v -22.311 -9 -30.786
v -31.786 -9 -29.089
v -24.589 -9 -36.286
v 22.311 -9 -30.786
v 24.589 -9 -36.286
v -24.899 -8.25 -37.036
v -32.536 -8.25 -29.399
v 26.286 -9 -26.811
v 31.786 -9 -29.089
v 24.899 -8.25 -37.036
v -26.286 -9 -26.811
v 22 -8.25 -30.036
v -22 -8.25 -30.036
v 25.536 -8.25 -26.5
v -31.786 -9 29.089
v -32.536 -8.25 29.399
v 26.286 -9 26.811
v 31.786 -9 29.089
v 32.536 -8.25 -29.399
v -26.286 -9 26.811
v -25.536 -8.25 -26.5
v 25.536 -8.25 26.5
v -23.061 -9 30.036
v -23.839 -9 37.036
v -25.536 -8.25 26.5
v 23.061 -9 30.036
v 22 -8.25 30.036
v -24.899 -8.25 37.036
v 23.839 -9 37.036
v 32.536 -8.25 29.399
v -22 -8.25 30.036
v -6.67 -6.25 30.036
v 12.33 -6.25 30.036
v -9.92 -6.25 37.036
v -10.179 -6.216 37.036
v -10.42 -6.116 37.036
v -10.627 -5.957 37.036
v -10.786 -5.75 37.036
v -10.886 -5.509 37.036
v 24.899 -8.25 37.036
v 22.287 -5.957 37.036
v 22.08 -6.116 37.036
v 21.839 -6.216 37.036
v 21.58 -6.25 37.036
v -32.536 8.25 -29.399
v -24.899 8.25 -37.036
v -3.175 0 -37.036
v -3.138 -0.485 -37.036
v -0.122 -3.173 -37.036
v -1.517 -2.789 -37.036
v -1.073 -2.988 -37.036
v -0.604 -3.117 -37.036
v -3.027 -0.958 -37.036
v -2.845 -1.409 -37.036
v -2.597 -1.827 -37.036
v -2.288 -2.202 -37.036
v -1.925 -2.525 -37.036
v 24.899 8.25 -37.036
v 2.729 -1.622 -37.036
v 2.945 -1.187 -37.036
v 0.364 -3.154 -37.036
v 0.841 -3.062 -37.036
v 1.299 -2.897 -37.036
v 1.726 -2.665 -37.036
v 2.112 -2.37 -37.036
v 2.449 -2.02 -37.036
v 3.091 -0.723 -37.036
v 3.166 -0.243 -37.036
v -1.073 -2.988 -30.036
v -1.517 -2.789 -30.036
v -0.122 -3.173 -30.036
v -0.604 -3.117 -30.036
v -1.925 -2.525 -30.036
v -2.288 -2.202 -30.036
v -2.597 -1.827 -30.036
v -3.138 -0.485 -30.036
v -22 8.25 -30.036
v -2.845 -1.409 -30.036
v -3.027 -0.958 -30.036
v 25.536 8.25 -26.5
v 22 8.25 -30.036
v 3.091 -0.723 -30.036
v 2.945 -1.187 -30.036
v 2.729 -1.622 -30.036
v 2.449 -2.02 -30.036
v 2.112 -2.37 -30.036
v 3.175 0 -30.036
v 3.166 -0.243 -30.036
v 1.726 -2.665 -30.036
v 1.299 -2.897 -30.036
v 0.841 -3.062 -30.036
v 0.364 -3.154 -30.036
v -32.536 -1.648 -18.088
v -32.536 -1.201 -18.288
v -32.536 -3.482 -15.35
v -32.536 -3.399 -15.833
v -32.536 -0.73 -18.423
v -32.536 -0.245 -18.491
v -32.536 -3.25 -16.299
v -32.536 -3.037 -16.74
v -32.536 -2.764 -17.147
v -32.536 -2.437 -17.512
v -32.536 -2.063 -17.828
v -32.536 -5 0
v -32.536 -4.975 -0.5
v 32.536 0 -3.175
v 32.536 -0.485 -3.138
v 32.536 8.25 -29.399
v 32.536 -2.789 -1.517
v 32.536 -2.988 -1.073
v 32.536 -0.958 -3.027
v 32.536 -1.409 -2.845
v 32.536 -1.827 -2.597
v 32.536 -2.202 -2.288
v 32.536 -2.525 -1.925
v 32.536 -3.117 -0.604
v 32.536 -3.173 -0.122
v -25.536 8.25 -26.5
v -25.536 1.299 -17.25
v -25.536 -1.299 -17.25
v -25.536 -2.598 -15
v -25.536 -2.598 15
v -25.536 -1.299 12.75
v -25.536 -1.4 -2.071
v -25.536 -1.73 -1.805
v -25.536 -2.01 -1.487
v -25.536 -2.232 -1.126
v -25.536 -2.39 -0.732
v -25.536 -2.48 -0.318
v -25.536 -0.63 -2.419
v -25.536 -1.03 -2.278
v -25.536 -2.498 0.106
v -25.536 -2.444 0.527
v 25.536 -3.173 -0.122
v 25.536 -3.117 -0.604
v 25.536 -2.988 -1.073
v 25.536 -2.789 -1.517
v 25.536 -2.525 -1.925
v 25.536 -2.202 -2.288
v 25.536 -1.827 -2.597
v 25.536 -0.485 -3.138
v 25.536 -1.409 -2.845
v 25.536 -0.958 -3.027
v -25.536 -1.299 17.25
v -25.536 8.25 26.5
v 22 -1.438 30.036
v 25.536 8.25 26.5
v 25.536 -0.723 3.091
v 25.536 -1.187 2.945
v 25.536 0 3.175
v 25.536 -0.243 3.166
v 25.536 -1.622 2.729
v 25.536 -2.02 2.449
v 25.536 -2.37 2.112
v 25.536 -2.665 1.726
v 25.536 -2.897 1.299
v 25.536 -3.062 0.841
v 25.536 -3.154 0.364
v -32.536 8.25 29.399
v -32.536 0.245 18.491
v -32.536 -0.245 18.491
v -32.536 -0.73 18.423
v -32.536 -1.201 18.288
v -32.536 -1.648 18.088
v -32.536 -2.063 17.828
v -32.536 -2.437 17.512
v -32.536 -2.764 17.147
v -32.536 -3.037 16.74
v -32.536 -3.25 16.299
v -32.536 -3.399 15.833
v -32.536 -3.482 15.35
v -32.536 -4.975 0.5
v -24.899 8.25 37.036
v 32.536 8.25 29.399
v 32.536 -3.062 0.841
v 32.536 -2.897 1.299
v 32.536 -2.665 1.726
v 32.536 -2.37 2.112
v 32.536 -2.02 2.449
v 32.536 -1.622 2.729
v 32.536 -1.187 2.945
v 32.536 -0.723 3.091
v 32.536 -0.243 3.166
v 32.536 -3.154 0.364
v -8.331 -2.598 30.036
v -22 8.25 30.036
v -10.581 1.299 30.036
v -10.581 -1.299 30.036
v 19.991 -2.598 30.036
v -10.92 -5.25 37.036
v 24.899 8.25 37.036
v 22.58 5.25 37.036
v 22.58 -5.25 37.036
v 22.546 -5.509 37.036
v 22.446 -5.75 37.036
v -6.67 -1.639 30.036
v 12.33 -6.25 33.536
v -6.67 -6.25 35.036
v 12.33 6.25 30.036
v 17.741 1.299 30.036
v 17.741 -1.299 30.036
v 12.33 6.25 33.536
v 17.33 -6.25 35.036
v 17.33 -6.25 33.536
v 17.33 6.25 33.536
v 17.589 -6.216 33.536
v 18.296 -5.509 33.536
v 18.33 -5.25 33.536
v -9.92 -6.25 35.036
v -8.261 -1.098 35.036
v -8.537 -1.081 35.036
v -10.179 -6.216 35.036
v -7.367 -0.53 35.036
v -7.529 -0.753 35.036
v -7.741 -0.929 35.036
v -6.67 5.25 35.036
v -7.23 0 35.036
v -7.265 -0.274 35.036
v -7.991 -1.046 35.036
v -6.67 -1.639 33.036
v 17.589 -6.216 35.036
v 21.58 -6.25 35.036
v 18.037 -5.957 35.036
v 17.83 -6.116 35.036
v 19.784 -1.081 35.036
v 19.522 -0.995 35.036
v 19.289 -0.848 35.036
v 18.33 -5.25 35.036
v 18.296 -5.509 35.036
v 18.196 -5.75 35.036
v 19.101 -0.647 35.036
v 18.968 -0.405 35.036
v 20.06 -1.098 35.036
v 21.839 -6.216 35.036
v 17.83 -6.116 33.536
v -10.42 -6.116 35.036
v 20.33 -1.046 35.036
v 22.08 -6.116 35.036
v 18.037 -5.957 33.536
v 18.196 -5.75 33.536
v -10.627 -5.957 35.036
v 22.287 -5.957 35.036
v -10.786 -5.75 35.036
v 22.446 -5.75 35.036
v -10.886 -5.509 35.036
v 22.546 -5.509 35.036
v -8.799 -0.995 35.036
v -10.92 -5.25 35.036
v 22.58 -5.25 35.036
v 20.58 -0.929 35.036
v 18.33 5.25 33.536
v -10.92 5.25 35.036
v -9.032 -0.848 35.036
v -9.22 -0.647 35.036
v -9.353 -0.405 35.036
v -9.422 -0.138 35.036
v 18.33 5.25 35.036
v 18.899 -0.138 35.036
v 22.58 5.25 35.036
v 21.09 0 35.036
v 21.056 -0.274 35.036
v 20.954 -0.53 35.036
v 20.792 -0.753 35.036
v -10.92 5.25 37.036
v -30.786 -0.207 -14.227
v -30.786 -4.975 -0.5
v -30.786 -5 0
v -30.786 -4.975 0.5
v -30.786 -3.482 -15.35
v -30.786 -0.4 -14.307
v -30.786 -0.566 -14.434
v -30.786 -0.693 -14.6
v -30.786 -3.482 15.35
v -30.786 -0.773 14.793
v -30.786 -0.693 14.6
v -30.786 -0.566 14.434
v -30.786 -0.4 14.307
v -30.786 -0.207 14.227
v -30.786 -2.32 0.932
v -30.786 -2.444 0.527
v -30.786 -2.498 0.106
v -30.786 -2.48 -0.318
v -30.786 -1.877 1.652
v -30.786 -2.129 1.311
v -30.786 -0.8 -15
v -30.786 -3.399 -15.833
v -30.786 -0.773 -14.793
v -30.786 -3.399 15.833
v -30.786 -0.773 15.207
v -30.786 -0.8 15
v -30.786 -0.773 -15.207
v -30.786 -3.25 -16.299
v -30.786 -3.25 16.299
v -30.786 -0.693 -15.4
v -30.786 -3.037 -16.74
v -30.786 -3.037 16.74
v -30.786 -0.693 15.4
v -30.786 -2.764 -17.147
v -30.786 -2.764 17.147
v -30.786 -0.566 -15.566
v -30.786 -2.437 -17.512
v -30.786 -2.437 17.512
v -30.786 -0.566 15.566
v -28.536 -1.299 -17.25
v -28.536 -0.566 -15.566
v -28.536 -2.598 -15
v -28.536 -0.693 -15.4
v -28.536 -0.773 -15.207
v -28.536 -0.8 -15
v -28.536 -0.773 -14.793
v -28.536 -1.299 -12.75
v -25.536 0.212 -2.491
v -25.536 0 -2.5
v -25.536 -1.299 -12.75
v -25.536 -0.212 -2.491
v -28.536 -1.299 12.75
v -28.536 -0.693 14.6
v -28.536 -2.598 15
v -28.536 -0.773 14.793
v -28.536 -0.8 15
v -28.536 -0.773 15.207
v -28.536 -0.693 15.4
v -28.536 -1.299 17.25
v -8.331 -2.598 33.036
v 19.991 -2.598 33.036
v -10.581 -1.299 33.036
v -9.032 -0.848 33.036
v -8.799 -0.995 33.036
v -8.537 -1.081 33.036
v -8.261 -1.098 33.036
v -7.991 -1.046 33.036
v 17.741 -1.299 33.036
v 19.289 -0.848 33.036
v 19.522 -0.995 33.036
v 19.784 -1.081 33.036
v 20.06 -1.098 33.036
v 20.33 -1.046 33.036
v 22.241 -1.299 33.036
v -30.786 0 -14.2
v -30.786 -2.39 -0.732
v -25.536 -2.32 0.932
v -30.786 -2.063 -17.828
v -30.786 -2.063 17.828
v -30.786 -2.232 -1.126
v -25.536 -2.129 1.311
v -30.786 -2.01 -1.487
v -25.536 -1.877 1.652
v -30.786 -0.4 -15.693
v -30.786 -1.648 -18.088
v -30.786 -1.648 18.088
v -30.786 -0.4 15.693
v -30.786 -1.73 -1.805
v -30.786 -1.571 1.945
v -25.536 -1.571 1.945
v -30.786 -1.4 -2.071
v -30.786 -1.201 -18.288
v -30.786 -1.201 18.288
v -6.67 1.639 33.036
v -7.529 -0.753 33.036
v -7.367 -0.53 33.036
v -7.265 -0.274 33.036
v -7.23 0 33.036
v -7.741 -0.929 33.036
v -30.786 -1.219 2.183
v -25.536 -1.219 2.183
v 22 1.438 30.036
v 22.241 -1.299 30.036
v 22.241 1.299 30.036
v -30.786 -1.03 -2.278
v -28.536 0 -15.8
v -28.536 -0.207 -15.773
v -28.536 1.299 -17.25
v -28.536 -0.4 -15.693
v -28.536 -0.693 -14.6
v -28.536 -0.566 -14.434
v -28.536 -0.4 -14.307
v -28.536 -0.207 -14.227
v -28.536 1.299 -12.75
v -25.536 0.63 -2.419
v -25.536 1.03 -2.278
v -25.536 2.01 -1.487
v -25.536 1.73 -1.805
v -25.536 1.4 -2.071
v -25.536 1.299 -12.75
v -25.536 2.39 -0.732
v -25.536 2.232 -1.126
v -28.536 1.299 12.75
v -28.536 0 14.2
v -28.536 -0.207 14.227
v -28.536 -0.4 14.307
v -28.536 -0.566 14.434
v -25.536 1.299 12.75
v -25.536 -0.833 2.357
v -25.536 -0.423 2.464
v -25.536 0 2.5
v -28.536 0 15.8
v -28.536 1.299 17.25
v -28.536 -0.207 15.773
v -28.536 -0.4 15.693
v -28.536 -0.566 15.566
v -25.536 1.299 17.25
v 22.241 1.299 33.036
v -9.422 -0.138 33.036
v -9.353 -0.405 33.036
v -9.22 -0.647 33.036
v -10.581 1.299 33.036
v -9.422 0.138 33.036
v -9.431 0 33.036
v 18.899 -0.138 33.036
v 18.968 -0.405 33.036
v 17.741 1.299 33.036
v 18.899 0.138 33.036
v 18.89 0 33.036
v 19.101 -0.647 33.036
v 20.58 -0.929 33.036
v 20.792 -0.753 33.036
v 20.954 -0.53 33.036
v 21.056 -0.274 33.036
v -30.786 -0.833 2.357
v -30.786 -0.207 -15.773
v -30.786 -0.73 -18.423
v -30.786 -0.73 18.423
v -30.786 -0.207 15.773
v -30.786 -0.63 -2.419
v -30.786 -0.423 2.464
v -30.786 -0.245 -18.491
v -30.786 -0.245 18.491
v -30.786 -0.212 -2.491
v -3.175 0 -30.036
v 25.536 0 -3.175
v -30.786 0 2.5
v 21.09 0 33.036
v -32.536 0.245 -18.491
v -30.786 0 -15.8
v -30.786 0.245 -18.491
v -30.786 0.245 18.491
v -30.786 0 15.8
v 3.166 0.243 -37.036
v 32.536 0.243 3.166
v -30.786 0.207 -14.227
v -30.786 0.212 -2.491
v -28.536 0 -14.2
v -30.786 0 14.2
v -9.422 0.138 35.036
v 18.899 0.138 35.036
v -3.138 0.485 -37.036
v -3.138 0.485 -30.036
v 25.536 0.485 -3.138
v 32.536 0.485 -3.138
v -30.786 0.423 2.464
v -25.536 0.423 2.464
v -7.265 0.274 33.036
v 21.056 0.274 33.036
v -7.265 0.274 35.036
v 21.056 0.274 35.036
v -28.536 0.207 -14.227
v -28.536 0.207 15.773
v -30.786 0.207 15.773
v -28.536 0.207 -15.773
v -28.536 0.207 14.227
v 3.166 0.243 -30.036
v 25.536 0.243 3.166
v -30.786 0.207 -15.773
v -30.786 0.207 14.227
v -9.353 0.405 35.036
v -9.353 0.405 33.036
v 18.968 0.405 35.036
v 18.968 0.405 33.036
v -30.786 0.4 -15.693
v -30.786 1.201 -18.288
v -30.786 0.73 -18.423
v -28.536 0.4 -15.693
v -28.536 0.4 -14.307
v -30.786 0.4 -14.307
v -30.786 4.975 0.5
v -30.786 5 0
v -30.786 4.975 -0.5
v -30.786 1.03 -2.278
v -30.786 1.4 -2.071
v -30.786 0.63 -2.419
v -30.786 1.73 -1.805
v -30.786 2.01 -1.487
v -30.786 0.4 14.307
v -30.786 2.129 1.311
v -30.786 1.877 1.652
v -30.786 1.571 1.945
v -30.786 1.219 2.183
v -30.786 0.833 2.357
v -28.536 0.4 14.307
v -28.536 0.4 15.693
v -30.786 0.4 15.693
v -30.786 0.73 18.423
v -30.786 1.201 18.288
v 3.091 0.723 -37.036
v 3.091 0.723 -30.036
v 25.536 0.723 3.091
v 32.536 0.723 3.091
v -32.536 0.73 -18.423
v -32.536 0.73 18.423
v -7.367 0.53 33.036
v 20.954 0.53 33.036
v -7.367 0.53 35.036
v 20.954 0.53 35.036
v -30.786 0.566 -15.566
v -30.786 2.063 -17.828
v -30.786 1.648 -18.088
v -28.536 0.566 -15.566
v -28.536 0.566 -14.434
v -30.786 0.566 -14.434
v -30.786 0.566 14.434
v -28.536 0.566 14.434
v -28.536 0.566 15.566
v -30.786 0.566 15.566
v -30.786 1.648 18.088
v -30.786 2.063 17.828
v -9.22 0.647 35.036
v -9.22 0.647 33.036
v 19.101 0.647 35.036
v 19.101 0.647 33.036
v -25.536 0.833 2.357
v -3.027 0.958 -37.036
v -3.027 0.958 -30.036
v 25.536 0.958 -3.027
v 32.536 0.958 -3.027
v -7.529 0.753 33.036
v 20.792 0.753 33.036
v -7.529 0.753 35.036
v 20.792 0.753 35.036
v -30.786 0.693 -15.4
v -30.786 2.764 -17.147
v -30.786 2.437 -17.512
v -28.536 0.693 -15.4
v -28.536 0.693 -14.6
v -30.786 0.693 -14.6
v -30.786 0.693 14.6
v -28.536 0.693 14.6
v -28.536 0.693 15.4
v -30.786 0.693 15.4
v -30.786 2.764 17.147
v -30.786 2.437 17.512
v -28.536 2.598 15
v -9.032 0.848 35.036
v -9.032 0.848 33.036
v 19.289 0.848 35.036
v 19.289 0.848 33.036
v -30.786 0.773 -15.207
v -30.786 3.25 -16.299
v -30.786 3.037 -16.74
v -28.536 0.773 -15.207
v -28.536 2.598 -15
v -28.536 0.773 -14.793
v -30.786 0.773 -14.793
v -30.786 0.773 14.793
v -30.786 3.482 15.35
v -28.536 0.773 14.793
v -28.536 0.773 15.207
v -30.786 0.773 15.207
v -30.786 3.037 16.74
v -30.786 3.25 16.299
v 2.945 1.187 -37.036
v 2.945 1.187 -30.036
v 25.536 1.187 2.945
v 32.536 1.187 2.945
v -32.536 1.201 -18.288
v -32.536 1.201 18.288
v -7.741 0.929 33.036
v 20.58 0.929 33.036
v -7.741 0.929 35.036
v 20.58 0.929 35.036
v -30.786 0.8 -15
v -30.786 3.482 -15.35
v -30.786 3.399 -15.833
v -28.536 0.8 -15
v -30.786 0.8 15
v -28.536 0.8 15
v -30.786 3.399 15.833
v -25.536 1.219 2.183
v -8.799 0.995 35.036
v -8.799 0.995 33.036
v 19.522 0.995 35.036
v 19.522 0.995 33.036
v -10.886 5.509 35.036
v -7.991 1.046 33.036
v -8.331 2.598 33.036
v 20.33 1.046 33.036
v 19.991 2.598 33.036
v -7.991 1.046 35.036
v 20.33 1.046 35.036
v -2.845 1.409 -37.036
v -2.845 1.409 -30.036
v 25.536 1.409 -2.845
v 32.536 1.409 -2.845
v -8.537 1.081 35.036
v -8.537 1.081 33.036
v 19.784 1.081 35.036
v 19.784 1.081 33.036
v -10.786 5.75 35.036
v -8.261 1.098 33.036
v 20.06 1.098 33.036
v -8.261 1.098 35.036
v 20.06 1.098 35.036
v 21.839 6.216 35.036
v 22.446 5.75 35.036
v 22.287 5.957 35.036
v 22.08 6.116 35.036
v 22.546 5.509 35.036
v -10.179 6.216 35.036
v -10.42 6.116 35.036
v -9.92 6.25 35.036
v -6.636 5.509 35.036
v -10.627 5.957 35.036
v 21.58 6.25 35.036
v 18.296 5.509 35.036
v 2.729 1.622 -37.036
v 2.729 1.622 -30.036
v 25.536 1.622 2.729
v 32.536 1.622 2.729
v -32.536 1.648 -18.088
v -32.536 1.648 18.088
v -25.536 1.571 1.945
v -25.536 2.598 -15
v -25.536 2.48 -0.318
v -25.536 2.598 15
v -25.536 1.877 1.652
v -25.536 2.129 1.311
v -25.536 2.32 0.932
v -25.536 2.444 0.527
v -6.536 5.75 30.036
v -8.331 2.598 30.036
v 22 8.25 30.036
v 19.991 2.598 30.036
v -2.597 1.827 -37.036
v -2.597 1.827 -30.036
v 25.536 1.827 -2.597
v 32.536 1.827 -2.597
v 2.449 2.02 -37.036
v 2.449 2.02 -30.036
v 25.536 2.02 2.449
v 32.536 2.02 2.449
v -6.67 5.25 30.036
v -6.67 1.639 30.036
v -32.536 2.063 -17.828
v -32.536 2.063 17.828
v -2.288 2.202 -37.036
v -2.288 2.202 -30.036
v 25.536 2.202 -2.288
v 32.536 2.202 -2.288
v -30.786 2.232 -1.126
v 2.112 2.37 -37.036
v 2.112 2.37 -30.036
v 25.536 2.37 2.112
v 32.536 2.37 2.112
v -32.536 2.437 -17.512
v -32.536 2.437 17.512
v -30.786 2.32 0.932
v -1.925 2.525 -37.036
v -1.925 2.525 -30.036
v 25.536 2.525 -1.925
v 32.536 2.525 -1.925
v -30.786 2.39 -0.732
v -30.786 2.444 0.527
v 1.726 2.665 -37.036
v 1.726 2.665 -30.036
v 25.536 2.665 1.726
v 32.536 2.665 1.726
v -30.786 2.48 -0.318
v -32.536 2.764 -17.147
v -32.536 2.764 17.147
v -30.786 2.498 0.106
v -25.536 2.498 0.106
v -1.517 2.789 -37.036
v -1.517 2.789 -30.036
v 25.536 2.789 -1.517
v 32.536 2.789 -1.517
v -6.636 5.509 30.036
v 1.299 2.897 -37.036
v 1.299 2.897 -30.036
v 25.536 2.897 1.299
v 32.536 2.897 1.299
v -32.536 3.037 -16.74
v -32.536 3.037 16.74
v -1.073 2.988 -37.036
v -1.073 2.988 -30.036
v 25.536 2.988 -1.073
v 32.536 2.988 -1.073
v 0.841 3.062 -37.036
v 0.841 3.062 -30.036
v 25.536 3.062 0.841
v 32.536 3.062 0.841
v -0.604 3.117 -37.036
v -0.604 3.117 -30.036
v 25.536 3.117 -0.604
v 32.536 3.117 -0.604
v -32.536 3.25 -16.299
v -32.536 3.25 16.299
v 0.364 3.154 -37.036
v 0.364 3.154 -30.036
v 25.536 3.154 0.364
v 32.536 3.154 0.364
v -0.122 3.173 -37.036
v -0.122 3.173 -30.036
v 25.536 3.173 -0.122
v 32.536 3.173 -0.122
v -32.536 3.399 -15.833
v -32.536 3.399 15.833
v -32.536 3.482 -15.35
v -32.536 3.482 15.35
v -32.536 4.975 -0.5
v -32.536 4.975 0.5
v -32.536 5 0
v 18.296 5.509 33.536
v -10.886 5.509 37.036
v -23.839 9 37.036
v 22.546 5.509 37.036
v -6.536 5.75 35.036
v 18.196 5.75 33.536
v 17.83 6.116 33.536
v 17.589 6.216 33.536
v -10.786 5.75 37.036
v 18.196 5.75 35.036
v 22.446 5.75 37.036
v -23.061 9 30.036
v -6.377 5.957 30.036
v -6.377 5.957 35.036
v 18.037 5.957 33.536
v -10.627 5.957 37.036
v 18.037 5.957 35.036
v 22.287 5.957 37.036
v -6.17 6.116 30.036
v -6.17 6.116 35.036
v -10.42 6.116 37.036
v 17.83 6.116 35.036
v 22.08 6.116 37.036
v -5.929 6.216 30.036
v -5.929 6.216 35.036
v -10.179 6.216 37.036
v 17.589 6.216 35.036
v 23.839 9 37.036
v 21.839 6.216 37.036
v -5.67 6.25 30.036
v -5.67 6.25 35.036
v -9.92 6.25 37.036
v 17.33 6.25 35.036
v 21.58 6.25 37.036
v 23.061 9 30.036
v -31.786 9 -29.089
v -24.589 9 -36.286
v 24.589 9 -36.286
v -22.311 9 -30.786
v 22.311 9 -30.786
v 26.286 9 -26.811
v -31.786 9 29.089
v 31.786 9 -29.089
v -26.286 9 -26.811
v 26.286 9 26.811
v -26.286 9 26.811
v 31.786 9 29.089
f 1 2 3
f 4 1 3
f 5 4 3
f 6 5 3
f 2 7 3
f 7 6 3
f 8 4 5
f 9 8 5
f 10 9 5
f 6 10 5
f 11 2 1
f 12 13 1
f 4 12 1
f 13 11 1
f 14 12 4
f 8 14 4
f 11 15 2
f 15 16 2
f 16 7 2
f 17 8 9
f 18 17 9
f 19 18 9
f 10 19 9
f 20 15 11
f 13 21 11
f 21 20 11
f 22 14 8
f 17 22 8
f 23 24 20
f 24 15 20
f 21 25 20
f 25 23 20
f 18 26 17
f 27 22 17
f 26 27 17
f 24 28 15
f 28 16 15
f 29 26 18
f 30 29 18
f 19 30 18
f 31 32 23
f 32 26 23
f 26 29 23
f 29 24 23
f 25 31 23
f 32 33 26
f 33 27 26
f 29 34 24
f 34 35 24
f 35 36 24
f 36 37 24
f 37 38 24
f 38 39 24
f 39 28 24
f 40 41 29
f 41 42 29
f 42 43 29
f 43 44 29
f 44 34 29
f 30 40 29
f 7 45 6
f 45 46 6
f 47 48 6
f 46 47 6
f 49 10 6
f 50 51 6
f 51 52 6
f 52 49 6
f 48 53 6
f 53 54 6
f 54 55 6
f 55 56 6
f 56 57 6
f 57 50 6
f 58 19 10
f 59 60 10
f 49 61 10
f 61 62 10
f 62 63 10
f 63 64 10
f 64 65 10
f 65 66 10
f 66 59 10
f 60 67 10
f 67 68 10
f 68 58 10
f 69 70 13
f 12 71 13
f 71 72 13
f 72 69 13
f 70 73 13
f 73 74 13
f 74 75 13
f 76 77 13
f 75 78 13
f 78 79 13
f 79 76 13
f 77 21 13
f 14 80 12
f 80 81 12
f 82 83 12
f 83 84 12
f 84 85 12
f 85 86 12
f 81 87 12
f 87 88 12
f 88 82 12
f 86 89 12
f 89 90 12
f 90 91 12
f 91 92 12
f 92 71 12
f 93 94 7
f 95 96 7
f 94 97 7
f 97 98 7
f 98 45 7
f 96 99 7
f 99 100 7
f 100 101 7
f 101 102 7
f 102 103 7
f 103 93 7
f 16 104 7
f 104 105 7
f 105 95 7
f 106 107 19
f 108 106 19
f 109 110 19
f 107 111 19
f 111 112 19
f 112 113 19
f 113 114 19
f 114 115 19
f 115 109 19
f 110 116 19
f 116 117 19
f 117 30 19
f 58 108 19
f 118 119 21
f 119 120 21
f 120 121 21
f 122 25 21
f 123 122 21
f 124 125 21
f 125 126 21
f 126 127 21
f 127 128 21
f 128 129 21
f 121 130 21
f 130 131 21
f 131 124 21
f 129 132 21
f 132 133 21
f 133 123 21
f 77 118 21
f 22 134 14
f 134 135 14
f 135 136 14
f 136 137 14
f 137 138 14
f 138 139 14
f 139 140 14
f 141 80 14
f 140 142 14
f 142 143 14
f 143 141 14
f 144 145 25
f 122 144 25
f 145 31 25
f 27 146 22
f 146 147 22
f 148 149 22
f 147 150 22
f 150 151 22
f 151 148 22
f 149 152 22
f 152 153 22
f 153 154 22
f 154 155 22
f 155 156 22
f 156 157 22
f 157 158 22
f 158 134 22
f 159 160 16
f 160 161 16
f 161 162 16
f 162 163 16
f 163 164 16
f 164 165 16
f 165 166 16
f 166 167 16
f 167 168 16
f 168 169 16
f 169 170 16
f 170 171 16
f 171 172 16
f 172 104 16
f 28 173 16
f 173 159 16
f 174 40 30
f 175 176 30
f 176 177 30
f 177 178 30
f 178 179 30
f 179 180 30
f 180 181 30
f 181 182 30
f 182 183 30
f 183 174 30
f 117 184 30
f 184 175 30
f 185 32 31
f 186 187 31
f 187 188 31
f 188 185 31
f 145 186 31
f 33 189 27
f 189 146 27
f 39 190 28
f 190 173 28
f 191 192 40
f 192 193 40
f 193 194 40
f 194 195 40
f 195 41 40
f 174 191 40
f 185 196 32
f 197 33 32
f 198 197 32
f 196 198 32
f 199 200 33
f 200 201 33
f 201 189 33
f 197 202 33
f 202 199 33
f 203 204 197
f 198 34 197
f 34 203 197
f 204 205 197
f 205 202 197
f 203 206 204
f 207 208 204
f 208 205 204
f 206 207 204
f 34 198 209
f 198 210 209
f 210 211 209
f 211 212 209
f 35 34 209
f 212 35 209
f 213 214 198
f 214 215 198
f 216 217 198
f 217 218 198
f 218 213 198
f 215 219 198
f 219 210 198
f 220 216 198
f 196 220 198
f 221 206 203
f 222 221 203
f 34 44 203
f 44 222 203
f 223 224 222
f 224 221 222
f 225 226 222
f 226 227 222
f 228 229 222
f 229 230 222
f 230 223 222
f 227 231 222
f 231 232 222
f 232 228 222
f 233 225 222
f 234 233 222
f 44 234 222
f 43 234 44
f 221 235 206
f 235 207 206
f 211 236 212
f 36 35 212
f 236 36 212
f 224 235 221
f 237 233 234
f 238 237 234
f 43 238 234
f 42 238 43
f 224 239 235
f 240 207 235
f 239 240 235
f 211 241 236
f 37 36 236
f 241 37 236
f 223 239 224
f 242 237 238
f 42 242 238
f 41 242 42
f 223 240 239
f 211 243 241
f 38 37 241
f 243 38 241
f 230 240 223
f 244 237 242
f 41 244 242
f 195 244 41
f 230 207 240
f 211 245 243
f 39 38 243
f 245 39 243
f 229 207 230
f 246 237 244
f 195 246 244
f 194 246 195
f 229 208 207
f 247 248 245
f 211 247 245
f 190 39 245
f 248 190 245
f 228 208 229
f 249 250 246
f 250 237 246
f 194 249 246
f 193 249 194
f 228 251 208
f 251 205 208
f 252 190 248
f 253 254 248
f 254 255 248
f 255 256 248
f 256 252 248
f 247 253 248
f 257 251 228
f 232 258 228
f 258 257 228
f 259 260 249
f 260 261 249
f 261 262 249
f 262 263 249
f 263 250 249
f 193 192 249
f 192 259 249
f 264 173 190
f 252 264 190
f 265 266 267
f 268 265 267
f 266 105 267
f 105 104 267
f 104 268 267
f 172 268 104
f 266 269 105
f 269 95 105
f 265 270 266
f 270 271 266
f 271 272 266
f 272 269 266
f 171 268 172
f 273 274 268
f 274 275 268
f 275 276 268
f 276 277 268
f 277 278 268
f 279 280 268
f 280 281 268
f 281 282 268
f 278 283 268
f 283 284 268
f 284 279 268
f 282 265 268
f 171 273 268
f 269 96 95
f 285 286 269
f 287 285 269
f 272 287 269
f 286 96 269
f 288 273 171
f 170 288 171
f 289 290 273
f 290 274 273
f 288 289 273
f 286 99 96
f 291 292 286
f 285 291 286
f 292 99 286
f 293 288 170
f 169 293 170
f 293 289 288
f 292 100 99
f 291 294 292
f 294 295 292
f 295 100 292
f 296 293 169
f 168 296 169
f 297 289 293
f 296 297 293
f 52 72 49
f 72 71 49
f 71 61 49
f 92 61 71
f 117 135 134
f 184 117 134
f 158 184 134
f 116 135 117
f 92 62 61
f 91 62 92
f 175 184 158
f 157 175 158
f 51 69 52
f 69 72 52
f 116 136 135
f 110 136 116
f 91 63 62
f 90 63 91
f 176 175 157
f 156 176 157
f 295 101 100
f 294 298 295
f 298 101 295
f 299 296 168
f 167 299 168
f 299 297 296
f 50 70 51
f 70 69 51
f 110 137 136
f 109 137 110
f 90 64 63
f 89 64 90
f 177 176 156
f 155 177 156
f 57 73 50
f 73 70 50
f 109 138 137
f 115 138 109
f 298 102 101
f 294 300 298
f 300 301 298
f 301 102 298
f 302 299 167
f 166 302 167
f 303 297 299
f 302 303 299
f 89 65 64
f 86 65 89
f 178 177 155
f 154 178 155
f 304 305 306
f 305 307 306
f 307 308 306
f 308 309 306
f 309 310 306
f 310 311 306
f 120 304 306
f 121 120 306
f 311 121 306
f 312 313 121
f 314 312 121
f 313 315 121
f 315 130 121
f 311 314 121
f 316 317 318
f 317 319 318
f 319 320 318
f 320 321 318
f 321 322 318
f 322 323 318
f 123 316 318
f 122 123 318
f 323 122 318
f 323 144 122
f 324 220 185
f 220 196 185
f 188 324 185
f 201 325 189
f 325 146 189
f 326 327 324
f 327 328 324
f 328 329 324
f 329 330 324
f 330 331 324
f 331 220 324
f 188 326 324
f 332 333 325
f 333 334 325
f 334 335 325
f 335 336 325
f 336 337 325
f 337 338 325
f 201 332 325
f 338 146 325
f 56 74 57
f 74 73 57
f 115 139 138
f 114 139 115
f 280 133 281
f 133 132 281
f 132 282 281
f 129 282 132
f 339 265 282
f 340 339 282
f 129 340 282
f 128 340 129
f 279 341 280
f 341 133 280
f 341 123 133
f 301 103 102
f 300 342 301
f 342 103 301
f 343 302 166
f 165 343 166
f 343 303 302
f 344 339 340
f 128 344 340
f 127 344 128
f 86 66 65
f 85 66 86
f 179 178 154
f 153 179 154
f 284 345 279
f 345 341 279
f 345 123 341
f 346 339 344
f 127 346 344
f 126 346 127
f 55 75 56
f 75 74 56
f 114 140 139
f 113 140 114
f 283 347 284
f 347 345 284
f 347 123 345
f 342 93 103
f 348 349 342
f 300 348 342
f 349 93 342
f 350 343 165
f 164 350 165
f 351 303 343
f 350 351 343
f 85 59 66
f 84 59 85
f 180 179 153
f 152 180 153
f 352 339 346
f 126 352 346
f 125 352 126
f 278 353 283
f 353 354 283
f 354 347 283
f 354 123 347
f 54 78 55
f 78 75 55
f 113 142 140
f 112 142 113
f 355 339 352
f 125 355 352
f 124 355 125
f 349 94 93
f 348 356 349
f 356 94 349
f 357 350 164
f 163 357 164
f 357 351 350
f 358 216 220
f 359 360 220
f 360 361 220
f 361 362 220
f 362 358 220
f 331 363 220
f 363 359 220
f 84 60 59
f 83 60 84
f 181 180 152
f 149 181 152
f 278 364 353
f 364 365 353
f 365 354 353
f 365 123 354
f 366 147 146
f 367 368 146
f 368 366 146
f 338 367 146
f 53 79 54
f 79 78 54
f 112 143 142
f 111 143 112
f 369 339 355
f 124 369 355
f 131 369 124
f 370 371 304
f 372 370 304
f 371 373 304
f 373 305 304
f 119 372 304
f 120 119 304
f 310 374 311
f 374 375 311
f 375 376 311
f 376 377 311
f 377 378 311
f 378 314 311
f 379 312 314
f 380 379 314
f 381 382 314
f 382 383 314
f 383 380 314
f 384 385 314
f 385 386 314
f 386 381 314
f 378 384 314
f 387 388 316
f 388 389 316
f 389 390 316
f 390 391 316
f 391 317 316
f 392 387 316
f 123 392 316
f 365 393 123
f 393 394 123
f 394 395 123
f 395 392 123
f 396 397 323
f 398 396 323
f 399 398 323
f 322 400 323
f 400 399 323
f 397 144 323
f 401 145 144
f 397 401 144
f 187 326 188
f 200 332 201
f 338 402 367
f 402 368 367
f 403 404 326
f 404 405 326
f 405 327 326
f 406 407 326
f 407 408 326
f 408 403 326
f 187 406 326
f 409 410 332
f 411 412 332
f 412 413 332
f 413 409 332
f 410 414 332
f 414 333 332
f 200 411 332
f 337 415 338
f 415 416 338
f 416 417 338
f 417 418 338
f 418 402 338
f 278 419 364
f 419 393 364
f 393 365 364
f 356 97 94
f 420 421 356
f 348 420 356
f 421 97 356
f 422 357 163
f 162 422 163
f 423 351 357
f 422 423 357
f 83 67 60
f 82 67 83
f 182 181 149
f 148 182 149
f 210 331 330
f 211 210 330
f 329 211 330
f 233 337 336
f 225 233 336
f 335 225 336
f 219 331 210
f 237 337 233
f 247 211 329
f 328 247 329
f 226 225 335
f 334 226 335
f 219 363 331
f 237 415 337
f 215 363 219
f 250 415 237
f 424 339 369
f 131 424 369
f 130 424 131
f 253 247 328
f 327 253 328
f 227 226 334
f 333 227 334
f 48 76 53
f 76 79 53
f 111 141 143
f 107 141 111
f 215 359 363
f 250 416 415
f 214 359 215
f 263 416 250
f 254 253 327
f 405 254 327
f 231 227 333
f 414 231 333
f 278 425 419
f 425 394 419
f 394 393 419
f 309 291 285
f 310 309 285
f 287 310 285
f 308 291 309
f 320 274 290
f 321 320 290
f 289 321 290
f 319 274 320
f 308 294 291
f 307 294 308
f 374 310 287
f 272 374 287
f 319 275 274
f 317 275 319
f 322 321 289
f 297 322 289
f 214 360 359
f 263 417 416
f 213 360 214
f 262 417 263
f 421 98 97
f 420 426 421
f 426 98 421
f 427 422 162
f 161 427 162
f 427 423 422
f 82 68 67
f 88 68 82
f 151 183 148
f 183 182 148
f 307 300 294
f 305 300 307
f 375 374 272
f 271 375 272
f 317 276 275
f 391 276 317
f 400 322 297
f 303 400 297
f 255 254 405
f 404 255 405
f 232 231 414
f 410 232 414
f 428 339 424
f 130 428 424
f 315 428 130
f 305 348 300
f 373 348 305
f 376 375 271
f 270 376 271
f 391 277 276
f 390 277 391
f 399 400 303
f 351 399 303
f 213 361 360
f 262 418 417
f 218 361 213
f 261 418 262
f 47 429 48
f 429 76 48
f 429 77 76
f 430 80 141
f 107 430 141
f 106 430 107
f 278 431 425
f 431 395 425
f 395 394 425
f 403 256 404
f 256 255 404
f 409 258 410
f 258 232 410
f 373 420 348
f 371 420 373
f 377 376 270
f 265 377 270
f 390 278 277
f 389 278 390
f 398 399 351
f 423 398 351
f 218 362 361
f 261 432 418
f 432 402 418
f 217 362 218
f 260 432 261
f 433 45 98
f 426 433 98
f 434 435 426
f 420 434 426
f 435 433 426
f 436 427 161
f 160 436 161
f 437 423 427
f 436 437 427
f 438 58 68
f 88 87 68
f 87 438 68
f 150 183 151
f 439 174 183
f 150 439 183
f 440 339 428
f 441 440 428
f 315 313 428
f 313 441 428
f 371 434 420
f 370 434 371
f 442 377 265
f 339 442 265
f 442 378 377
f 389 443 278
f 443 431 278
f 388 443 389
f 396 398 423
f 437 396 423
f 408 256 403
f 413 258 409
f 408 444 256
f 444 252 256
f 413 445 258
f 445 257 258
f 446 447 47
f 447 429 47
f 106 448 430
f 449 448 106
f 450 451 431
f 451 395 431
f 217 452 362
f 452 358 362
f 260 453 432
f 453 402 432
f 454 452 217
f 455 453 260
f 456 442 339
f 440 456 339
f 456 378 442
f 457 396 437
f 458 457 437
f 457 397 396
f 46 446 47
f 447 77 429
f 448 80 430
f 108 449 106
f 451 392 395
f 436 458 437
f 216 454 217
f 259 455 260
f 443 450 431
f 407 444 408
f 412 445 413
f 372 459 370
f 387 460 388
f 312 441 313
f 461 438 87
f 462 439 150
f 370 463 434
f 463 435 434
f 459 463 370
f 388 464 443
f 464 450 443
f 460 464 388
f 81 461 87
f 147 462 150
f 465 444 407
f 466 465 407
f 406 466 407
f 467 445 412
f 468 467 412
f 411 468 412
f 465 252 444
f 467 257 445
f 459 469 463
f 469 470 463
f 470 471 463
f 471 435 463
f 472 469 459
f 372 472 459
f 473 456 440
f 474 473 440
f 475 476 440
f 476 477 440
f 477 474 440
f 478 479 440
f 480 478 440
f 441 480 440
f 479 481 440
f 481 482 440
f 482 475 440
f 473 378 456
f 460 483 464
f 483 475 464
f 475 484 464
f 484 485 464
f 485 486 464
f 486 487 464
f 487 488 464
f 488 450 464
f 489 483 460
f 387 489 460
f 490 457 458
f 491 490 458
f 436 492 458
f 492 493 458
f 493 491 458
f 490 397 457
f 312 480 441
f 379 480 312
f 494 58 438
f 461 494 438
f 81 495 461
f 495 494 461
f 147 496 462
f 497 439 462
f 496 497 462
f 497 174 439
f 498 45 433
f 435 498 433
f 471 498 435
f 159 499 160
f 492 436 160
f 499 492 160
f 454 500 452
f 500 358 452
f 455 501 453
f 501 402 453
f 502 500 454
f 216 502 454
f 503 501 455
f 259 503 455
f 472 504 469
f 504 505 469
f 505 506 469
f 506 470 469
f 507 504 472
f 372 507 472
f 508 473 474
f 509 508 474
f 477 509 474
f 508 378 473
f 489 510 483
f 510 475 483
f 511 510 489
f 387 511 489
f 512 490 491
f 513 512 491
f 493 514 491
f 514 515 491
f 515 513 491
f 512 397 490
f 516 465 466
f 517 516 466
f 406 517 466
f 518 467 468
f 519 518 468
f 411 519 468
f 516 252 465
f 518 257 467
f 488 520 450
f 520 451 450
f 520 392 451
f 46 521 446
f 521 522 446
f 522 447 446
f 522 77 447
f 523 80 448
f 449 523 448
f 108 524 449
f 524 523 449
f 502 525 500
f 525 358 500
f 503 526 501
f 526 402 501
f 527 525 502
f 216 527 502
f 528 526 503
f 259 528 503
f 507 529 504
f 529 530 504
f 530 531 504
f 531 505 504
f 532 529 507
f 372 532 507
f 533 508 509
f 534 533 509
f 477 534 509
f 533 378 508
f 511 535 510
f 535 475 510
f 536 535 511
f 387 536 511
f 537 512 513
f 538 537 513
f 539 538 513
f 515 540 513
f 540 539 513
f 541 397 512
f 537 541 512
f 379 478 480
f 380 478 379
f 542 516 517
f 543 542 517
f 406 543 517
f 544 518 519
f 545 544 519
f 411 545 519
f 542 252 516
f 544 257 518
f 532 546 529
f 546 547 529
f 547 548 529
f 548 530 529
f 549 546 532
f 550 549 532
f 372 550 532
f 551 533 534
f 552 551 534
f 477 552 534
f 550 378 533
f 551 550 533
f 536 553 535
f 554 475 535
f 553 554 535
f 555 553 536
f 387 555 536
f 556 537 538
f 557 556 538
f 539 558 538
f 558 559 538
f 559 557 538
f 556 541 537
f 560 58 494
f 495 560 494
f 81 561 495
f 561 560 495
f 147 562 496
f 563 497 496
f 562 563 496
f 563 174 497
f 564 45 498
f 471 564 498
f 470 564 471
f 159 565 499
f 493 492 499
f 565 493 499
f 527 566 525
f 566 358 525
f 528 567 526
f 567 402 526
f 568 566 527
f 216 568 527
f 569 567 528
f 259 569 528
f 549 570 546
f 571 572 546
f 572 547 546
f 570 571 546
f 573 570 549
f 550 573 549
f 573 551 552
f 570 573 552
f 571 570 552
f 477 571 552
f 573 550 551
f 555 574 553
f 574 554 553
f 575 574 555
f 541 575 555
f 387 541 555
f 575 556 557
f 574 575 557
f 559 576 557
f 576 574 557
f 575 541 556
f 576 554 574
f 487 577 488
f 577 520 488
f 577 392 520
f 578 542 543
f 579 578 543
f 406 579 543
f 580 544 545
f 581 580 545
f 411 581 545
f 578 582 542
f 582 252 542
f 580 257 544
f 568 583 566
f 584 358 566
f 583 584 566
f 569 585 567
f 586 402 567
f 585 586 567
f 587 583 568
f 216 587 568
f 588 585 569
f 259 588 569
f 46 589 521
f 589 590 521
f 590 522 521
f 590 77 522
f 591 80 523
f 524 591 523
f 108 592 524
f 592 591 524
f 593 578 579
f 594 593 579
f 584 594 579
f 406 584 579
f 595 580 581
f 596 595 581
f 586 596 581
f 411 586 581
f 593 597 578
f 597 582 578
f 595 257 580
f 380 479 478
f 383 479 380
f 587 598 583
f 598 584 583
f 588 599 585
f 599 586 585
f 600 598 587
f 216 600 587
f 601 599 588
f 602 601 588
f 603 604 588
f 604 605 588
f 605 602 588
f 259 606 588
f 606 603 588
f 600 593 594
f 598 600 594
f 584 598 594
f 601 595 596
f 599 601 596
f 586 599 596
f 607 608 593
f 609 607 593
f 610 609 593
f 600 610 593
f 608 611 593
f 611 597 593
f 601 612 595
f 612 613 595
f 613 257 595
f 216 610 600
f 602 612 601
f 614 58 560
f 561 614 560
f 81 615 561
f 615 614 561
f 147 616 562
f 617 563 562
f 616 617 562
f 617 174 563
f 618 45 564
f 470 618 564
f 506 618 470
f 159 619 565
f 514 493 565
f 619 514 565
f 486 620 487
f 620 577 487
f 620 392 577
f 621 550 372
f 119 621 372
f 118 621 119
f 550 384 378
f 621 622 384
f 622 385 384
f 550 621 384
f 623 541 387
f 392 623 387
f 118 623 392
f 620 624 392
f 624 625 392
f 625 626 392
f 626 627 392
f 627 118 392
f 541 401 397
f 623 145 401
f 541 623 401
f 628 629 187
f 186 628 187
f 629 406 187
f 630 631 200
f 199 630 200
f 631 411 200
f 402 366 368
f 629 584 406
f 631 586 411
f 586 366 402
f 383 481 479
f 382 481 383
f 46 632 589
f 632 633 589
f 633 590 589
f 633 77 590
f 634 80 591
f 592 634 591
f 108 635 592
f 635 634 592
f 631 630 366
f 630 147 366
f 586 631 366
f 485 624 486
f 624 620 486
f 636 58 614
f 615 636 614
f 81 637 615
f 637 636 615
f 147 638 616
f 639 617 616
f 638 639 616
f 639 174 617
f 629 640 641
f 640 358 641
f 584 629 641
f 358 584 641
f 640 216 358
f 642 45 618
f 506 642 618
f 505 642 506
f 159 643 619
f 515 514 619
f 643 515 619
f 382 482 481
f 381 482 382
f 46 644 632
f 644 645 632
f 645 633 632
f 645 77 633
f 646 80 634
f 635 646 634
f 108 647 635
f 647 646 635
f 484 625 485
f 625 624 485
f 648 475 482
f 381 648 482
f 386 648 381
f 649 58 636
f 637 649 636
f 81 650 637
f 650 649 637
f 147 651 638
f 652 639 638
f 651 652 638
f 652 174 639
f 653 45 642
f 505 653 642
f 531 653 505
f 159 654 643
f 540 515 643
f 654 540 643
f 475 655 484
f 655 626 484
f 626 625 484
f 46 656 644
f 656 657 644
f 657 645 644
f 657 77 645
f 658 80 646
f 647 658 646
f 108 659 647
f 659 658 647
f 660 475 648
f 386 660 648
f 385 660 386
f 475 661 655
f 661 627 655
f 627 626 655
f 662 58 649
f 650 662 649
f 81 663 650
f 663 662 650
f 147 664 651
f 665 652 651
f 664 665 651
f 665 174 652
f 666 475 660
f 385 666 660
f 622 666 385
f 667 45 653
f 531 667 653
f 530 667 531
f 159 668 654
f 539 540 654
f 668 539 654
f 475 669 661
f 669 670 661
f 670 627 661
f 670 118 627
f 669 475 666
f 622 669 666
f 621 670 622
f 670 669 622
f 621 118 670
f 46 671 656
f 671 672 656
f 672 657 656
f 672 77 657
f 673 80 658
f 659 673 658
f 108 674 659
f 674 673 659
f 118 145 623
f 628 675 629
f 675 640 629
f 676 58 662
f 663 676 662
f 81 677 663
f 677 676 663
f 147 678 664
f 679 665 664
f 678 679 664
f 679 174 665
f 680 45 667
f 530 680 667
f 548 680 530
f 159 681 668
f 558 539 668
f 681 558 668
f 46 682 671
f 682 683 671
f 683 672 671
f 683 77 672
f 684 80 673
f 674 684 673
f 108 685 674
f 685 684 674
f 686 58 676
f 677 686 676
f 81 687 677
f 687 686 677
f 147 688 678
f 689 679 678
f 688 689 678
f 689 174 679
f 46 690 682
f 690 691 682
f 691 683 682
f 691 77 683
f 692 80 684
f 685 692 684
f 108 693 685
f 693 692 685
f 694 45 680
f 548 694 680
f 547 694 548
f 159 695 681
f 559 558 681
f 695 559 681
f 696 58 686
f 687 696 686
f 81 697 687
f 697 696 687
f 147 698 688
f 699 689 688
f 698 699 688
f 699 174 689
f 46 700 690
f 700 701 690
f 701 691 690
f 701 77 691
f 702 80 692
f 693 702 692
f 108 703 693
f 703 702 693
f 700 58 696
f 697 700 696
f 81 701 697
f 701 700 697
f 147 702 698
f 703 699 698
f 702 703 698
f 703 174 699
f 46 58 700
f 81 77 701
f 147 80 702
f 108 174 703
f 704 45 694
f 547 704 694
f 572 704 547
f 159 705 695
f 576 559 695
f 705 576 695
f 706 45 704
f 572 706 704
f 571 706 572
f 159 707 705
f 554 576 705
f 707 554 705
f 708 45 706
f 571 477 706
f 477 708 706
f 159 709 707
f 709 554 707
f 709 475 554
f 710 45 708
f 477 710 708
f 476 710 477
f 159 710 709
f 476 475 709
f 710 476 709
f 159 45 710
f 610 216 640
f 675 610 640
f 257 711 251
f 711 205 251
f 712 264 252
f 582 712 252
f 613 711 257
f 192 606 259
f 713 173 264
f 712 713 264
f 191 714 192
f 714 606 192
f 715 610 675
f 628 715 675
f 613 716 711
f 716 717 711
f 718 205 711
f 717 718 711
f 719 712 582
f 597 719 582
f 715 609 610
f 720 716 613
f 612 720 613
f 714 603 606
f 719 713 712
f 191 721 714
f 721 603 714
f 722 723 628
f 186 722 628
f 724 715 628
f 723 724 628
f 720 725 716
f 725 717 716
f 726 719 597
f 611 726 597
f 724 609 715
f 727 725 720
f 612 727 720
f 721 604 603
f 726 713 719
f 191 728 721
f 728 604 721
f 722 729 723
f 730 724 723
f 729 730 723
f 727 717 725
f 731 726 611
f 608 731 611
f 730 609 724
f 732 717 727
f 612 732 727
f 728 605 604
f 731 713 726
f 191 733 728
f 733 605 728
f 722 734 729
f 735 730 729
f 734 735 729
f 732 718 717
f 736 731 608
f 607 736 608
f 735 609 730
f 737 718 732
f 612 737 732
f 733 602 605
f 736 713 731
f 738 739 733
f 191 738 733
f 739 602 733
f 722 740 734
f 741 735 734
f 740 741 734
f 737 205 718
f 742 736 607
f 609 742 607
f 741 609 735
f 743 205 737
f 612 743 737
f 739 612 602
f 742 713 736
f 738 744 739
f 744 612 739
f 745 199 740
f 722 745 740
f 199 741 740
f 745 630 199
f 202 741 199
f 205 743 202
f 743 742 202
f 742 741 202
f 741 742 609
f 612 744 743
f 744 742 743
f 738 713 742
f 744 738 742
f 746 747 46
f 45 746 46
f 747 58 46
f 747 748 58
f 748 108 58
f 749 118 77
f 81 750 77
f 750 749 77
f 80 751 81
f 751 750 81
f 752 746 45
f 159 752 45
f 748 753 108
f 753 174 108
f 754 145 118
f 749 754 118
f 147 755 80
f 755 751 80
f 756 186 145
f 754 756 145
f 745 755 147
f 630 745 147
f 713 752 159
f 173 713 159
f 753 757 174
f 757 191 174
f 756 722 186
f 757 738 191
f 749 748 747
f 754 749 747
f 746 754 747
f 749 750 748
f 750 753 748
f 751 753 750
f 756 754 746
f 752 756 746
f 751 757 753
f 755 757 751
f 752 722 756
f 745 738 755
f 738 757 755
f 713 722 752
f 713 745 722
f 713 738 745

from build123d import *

# Parameters (mm, degrees)
BOSS_EXTRUDE1_DEPTH = 9
BEARING_HOLE_REACH  = 67.071
SKETCH11_R          = 3.175
CUT_EXTRUDE23_REACH = 67.071
SKETCH27_R          = 0.8
CUT_EXTRUDE25_DEPTH = 1.75
CUT_EXTRUDE26_REACH = 65.321
SKETCH28_R          = 2.5
CUT_EXTRUDE27_REACH = 76.071
SKETCH29_R          = 3.175
SKETCH35_W          = 33.5
SKETCH35_H          = 12.5
CUT_EXTRUDE29_DEPTH = 2
CUT_EXTRUDE30_REACH = 74.071
SKETCH36_W          = 25
SKETCH36_H          = 12.5
CUT_EXTRUDE31_REACH = 74.071
SKETCH37_R          = 1.1
FILLET1_R           = 1
SKETCH41_W          = 6
SKETCH41_H          = 12.5
BOSS_EXTRUDE4_DEPTH = 3.5
CUT_EXTRUDE32_DEPTH = 3
CUT_EXTRUDE33_DEPTH = 3
CHAMFER2_SIZE       = 0.75


with BuildPart() as part:
    # Sketch1 → Boss-Extrude1 (new body, symmetric)
    with BuildSketch(Plane(origin=(0, 0, 0), x_dir=(1, 0, 0), z_dir=(0, 1, 0))):
        Polygon((-32.535533906, 29.399494937), (-32.535533906, -29.399494937), (-24.899494937, -37.035533906), (24.899494937, -37.035533906), (32.535533906, -29.399494937), (32.535533906, 29.399494937), (24.899494937, 37.035533906), (-24.899494937, 37.035533906), align=None)
        Polygon((-25.535533906, 26.5), (-22, 30.035533906), (22, 30.035533906), (25.535533906, 26.5), (25.535533906, -26.5), (22, -30.035533906), (-22, -30.035533906), (-25.535533906, -26.5), align=None, mode=Mode.SUBTRACT)
    extrude(amount=BOSS_EXTRUDE1_DEPTH, both=True)

    # Sketch11 → Bearing Hole (cut, up to next)
    with BuildSketch(Plane(origin=(32.535533906, 0, 0), x_dir=(0, 0, -1), z_dir=(1, 0, 0)), mode=Mode.PRIVATE) as bearing_hole_sk1:
        Circle(SKETCH11_R)
    bearing_hole_tool1 = extrude(bearing_hole_sk1.sketch, amount=-BEARING_HOLE_REACH, mode=Mode.PRIVATE) & part.part
    add(bearing_hole_tool1.solids().sort_by_distance((32.535534, 0, 0))[0], mode=Mode.SUBTRACT)

    # Sketch27 → Cut-Extrude23 (cut, up to next)
    with BuildSketch(Plane.ZY.offset(32.535533906), mode=Mode.PRIVATE) as cut_extrude23_sk1:
        with Locations((-15, 0)):
            Circle(SKETCH27_R)
    cut_extrude23_tool1 = extrude(cut_extrude23_sk1.sketch, amount=-CUT_EXTRUDE23_REACH, mode=Mode.PRIVATE) & part.part
    add(cut_extrude23_tool1.solids().sort_by_distance((-32.535534, 0, -15))[0], mode=Mode.SUBTRACT)
    # Sketch27 → Cut-Extrude23 (cut, up to next)
    with BuildSketch(Plane.ZY.offset(32.535533906), mode=Mode.PRIVATE) as cut_extrude23_sk2:
        with Locations((15, 0)):
            Circle(SKETCH27_R)
    cut_extrude23_tool2 = extrude(cut_extrude23_sk2.sketch, amount=-CUT_EXTRUDE23_REACH, mode=Mode.PRIVATE) & part.part
    add(cut_extrude23_tool2.solids().sort_by_distance((-32.535534, 0, 15))[0], mode=Mode.SUBTRACT)

    # Sketch25 → Cut-Extrude25 (cut)
    with BuildSketch(Plane.ZY.offset(32.535533906)):
        with BuildLine():
            Line((-15.35, 3.48245603), (-0.5, 4.974937186))
            ThreePointArc((-0.5, 4.974937186), (0, 5), (0.5, 4.974937186))
            Line((0.5, 4.974937186), (15.35, 3.48245603))
            ThreePointArc((15.35, 3.48245603), (18.5, 0), (15.35, -3.48245603))
            Line((15.35, -3.48245603), (0.5, -4.974937186))
            ThreePointArc((0.5, -4.974937186), (0, -5), (-0.5, -4.974937186))
            Line((-0.5, -4.974937186), (-15.35, -3.48245603))
            ThreePointArc((-15.35, -3.48245603), (-18.5, 0), (-15.35, 3.48245603))
        make_face()
    extrude(amount=-CUT_EXTRUDE25_DEPTH, mode=Mode.SUBTRACT)

    # Sketch28 → Cut-Extrude26 (cut, up to next)
    with BuildSketch(Plane.ZY.offset(30.785533906), mode=Mode.PRIVATE) as cut_extrude26_sk1:
        Circle(SKETCH28_R)
    cut_extrude26_tool1 = extrude(cut_extrude26_sk1.sketch, amount=-CUT_EXTRUDE26_REACH, mode=Mode.PRIVATE) & part.part
    add(cut_extrude26_tool1.solids().sort_by_distance((-30.785534, 0, 0))[0], mode=Mode.SUBTRACT)

    # Sketch29 → Cut-Extrude27 (cut, up to next)
    with BuildSketch(Plane(origin=(0, 0, -37.035533906), x_dir=(-1, 0, 0), z_dir=(0, 0, -1)), mode=Mode.PRIVATE) as cut_extrude27_sk1:
        Circle(SKETCH29_R)
    cut_extrude27_tool1 = extrude(cut_extrude27_sk1.sketch, amount=-CUT_EXTRUDE27_REACH, mode=Mode.PRIVATE) & part.part
    add(cut_extrude27_tool1.solids().sort_by_distance((0, 0, -37.035534))[0], mode=Mode.SUBTRACT)

    # Sketch35 → Cut-Extrude29 (cut)
    with BuildSketch(Plane.XY.offset(37.035533906)):
        with Locations((5.83, 0)):
            Rectangle(SKETCH35_W, SKETCH35_H)
    extrude(amount=-CUT_EXTRUDE29_DEPTH, mode=Mode.SUBTRACT)

    # Sketch36 → Cut-Extrude30 (cut, up to next)
    with BuildSketch(Plane.XY.offset(35.035533906), mode=Mode.PRIVATE) as cut_extrude30_sk1:
        with Locations((5.83, 0)):
            Rectangle(SKETCH36_W, SKETCH36_H)
    cut_extrude30_tool1 = extrude(cut_extrude30_sk1.sketch, amount=-CUT_EXTRUDE30_REACH, mode=Mode.PRIVATE) & part.part
    add(cut_extrude30_tool1.solids().sort_by_distance((5.83, 0, 35.035534))[0], mode=Mode.SUBTRACT)

    # Sketch37 → Cut-Extrude31 (cut, up to next)
    with BuildSketch(Plane.XY.offset(35.035533906), mode=Mode.PRIVATE) as cut_extrude31_sk1:
        with Locations((19.9905, 0)):
            Circle(SKETCH37_R)
    cut_extrude31_tool1 = extrude(cut_extrude31_sk1.sketch, amount=-CUT_EXTRUDE31_REACH, mode=Mode.PRIVATE) & part.part
    add(cut_extrude31_tool1.solids().sort_by_distance((19.9905, 0, 35.035534))[0], mode=Mode.SUBTRACT)
    # Sketch37 → Cut-Extrude31 (cut, up to next)
    with BuildSketch(Plane.XY.offset(35.035533906), mode=Mode.PRIVATE) as cut_extrude31_sk2:
        with Locations((-8.3305, 0)):
            Circle(SKETCH37_R)
    cut_extrude31_tool2 = extrude(cut_extrude31_sk2.sketch, amount=-CUT_EXTRUDE31_REACH, mode=Mode.PRIVATE) & part.part
    add(cut_extrude31_tool2.solids().sort_by_distance((-8.3305, 0, 35.035534))[0], mode=Mode.SUBTRACT)

    # Fillet1
    fillet1_edges = [part.edges().sort_by_distance(p)[0] for p in [
        (22.58, 6.25, 36.035533906),
        (22.58, -6.25, 36.035533906),
        (-10.92, -6.25, 36.035533906),
        (-10.92, 6.25, 36.035533906),
        (18.33, 6.25, 32.535533906),
        (18.33, -6.25, 32.535533906),
        (-6.67, 6.25, 32.535533906),
    ]]
    fillet(fillet1_edges, radius=FILLET1_R)

    # Sketch41 → Boss-Extrude4 (add)
    with BuildSketch(Plane(origin=(0, 0, 30.035533906), x_dir=(-1, 0, 0), z_dir=(0, 0, -1))):
        with Locations((-15.33, 0)):
            Rectangle(SKETCH41_W, SKETCH41_H)
    extrude(amount=-BOSS_EXTRUDE4_DEPTH)

    # Sketch42 → Cut-Extrude32 (cut)
    with BuildSketch(Plane(origin=(-25.535533906, 0, 0), x_dir=(0, 0, -1), z_dir=(1, 0, 0))):
        Polygon((-12.75, -1.299038106), (-12.75, 1.299038106), (-15, 2.598076211), (-17.25, 1.299038106), (-17.25, -1.299038106), (-15, -2.598076211), align=None)
        Polygon((17.25, 1.299038106), (15, 2.598076211), (12.75, 1.299038106), (12.75, -1.299038106), (15, -2.598076211), (17.25, -1.299038106), align=None)
    extrude(amount=-CUT_EXTRUDE32_DEPTH, mode=Mode.SUBTRACT)

    # Sketch43 → Cut-Extrude33 (cut)
    with BuildSketch(Plane(origin=(0, 0, 30.035533906), x_dir=(-1, 0, 0), z_dir=(0, 0, -1))):
        Polygon((-17.7405, -1.299038106), (-17.7405, 1.299038106), (-19.9905, 2.598076211), (-22.2405, 1.299038106), (-22.2405, -1.299038106), (-19.9905, -2.598076211), align=None)
        Polygon((6.0805, -1.299038106), (8.3305, -2.598076211), (10.5805, -1.299038106), (10.5805, 1.299038106), (8.3305, 2.598076211), (6.0805, 1.299038106), align=None)
    extrude(amount=-CUT_EXTRUDE33_DEPTH, mode=Mode.SUBTRACT)

    # Chamfer2
    chamfer2_edges = [part.edges().sort_by_distance(p)[0] for p in [
        (-28.717514421, 9, 33.217514421),
        (-32.535533906, -9, 0),
        (-28.717514421, -9, -33.217514421),
        (28.717514421, 9, 33.217514421),
        (32.535533906, 9, 0),
        (28.717514421, 9, -33.217514421),
        (0, 9, -37.035533906),
        (-25.535533906, -9, 0),
        (-23.767766953, -9, 28.267766953),
        (23.767766953, -9, 28.267766953),
        (25.535533906, -9, 0),
        (23.767766953, -9, -28.267766953),
        (0, -9, -30.035533906),
        (-23.767766953, -9, -28.267766953),
        (-25.535533906, 9, 0),
        (-23.767766953, 9, 28.267766953),
        (23.767766953, 9, 28.267766953),
        (25.535533906, 9, 0),
        (23.767766953, 9, -28.267766953),
        (0, 9, -30.035533906),
        (-23.767766953, 9, -28.267766953),
        (-28.717514421, 9, -33.217514421),
        (-32.535533906, 9, 0),
        (0, -9, -37.035533906),
        (28.717514421, -9, -33.217514421),
        (32.535533906, -9, 0),
        (28.717514421, -9, 33.217514421),
        (-28.717514421, -9, 33.217514421),
    ]]
    chamfer(chamfer2_edges, length=CHAMFER2_SIZE)


solid = part.part
